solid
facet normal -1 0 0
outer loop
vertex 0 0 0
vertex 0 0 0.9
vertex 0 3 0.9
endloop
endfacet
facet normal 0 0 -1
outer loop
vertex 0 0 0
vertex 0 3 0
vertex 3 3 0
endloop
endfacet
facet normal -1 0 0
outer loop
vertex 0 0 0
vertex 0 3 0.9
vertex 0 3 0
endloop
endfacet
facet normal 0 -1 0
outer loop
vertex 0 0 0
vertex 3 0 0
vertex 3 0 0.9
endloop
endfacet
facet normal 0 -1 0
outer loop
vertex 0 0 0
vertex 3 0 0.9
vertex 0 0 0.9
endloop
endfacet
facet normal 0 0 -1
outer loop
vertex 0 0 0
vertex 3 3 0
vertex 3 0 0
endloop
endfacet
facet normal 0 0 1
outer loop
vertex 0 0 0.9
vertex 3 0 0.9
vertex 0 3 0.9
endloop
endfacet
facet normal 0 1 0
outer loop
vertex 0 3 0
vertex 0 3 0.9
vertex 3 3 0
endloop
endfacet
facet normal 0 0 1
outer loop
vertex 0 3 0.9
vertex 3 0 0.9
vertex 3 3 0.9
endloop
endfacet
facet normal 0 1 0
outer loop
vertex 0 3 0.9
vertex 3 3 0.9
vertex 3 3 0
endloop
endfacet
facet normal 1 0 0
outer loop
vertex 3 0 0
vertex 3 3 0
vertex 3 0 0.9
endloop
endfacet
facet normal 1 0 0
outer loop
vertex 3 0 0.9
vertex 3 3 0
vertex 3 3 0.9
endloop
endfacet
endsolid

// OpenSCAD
/* Warning, this is a very basic generator with a lot of approximation 
input data : [VDFN, Q8B, 3x3x0.9mm, 8, , D, C04-21358D]
generated by com.zoubworld.electronics.cad.model3d.Basic
Date : Sun Feb 15 10:50:49 CET 2026
*/

//body
color("black")
translate([0,0,0])
cube([3.0,3.0,0.9], center=false);
